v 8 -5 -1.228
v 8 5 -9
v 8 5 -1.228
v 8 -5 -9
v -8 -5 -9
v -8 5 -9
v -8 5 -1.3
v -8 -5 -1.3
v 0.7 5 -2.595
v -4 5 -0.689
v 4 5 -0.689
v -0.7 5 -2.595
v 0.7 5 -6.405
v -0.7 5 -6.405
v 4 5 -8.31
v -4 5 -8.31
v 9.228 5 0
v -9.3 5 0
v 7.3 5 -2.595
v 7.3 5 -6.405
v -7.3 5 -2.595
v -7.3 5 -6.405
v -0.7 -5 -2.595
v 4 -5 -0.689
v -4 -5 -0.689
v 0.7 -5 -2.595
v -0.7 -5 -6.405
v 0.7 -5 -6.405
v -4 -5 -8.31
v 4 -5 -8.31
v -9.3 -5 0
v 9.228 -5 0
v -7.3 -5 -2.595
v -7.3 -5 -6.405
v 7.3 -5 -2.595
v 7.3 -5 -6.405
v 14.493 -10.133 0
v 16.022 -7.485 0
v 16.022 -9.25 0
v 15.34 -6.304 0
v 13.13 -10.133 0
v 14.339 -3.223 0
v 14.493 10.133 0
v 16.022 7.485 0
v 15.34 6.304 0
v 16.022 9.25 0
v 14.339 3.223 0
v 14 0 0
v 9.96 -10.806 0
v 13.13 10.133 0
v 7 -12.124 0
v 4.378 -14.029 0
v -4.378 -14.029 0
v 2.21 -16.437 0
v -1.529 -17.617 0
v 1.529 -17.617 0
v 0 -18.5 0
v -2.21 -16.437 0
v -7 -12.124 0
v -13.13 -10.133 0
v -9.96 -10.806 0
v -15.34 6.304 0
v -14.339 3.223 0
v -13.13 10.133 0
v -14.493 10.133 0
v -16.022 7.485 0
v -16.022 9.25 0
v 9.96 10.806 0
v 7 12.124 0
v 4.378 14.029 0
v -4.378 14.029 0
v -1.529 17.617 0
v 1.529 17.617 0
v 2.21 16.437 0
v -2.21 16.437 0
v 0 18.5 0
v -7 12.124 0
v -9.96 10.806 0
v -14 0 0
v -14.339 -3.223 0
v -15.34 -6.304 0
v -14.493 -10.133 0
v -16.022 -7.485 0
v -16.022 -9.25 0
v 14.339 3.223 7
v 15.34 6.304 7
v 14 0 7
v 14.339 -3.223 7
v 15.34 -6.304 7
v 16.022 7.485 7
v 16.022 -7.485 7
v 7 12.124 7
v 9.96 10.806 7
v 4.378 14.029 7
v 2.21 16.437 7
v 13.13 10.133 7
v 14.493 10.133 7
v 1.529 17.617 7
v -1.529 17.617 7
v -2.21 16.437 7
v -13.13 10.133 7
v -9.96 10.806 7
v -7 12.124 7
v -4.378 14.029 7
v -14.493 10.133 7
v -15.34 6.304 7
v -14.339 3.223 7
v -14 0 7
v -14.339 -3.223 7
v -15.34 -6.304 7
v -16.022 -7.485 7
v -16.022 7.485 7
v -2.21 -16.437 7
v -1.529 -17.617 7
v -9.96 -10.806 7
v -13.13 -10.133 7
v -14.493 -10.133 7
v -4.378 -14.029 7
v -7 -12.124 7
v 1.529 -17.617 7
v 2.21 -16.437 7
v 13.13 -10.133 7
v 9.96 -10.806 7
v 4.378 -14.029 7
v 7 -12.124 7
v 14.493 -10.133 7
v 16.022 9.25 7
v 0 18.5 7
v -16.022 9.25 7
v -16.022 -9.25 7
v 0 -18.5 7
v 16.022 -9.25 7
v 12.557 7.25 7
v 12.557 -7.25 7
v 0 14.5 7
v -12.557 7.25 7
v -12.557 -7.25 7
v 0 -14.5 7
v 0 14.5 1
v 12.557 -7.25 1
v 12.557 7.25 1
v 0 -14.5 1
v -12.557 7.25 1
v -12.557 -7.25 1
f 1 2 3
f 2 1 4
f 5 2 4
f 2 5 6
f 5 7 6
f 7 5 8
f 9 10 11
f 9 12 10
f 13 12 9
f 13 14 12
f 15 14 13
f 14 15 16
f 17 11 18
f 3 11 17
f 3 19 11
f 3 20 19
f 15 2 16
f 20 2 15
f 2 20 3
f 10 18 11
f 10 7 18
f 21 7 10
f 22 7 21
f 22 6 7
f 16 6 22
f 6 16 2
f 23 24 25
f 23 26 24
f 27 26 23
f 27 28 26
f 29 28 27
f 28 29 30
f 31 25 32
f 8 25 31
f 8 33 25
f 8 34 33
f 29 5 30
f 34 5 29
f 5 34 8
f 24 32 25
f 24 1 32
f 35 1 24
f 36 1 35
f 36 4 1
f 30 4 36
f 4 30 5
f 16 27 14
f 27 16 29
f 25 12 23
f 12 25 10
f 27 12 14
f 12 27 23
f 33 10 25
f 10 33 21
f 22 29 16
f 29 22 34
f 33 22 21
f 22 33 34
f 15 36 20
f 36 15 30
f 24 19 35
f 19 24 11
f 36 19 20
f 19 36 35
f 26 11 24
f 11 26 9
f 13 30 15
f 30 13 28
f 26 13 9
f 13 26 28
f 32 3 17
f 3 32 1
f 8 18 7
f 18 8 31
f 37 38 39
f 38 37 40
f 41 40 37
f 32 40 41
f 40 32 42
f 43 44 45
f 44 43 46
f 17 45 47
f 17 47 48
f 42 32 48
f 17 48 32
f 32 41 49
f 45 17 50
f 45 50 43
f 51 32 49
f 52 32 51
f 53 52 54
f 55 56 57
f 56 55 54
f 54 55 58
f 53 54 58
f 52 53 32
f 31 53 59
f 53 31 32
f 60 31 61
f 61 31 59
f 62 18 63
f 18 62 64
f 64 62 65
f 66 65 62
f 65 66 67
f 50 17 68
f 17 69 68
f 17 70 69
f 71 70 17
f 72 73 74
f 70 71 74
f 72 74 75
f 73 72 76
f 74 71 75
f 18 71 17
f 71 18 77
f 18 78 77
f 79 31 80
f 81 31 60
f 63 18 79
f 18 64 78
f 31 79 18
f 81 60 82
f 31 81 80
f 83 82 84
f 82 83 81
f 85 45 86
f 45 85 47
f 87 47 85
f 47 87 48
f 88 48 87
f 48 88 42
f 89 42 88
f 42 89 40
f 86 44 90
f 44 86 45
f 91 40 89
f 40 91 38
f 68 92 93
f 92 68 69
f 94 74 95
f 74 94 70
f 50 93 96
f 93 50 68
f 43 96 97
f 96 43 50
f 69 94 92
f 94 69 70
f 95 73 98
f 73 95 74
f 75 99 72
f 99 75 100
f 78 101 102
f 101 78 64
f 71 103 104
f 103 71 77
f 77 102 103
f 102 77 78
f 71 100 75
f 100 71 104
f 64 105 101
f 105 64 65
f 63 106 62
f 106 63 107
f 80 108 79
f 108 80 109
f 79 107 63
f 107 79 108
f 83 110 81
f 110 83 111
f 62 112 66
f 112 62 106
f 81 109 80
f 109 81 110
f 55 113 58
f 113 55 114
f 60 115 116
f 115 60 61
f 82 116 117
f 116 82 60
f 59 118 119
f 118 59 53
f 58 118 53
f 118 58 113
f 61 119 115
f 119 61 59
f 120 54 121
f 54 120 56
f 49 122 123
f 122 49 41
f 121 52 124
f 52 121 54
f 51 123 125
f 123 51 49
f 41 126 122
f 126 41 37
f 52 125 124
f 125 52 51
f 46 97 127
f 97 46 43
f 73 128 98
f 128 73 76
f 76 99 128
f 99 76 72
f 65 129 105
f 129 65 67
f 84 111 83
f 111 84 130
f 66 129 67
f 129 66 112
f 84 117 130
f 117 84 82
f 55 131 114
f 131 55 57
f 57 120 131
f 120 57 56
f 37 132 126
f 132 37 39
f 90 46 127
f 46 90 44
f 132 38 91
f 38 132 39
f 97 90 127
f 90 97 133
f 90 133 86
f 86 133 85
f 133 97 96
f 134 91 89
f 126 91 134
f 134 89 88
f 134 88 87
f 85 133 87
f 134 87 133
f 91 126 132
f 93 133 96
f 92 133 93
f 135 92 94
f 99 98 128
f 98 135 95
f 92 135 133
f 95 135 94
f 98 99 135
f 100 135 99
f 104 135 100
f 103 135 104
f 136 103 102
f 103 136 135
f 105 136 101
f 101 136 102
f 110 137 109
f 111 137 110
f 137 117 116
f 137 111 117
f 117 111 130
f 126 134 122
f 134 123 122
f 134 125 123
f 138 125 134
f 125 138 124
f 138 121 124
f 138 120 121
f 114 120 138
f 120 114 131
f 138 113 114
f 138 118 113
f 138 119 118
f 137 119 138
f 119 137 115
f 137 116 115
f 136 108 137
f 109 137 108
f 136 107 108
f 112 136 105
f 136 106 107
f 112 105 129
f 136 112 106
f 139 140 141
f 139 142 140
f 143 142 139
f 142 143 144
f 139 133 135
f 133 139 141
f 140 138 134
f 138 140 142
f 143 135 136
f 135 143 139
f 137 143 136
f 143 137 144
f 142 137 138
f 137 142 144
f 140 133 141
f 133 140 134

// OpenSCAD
module hexagon(r = 10) {
    polygon([[0,r],[sqrt(3)*r/2,r/2],[sqrt(3)*r/2,-(r/2)],[0,-r],[-(sqrt(3)*r/2),-(r/2)],[-(sqrt(3)*r/2),r/2]]);
}
module pencil(h = 10,r = 6.2/2*sqrt(3)) {
    linear_extrude(h) {
        hexagon(r);
    }
}

module bit_holder() {
    difference() {
        cube([16,10,9.5]);
        translate([4,10.005,4.5]) rotate([90,0,0]) pencil(10.02,6.6*sqrt(3)/3);
        translate([12,10.005,4.5]) rotate([90,0,0]) pencil(10.02,6.6*sqrt(3)/3);
    }
}

module grip_waku() {
    r = 31;
    difference() {
        union() {
//            cylinder(7,r/2,r/2);
            pencil(7,(r+6)/2);
        }
        translate([0,0,1]) pencil(7,(r-2)/2);
        for (i = [0 : 5]) {
            translate([cos(i*60)*29.5,sin(i*60)*29.5,-0.1]) cylinder(7.2,r/2,r/2);
        }
    }
}

module holder() {
    translate([-8,-5,-9]) {
        difference() {
            union() {
                bit_holder();
                translate([14.5,0,9.1]) rotate([0,45,0]) cube([2,10,2]);
                translate([-1.4,0,9.1]) rotate([0,45,0]) cube([2,10,2]);
            }
        translate([-2,-0.1,9]) cube([20,12,4]);
        }
    }
    grip_waku();
}

holder();
